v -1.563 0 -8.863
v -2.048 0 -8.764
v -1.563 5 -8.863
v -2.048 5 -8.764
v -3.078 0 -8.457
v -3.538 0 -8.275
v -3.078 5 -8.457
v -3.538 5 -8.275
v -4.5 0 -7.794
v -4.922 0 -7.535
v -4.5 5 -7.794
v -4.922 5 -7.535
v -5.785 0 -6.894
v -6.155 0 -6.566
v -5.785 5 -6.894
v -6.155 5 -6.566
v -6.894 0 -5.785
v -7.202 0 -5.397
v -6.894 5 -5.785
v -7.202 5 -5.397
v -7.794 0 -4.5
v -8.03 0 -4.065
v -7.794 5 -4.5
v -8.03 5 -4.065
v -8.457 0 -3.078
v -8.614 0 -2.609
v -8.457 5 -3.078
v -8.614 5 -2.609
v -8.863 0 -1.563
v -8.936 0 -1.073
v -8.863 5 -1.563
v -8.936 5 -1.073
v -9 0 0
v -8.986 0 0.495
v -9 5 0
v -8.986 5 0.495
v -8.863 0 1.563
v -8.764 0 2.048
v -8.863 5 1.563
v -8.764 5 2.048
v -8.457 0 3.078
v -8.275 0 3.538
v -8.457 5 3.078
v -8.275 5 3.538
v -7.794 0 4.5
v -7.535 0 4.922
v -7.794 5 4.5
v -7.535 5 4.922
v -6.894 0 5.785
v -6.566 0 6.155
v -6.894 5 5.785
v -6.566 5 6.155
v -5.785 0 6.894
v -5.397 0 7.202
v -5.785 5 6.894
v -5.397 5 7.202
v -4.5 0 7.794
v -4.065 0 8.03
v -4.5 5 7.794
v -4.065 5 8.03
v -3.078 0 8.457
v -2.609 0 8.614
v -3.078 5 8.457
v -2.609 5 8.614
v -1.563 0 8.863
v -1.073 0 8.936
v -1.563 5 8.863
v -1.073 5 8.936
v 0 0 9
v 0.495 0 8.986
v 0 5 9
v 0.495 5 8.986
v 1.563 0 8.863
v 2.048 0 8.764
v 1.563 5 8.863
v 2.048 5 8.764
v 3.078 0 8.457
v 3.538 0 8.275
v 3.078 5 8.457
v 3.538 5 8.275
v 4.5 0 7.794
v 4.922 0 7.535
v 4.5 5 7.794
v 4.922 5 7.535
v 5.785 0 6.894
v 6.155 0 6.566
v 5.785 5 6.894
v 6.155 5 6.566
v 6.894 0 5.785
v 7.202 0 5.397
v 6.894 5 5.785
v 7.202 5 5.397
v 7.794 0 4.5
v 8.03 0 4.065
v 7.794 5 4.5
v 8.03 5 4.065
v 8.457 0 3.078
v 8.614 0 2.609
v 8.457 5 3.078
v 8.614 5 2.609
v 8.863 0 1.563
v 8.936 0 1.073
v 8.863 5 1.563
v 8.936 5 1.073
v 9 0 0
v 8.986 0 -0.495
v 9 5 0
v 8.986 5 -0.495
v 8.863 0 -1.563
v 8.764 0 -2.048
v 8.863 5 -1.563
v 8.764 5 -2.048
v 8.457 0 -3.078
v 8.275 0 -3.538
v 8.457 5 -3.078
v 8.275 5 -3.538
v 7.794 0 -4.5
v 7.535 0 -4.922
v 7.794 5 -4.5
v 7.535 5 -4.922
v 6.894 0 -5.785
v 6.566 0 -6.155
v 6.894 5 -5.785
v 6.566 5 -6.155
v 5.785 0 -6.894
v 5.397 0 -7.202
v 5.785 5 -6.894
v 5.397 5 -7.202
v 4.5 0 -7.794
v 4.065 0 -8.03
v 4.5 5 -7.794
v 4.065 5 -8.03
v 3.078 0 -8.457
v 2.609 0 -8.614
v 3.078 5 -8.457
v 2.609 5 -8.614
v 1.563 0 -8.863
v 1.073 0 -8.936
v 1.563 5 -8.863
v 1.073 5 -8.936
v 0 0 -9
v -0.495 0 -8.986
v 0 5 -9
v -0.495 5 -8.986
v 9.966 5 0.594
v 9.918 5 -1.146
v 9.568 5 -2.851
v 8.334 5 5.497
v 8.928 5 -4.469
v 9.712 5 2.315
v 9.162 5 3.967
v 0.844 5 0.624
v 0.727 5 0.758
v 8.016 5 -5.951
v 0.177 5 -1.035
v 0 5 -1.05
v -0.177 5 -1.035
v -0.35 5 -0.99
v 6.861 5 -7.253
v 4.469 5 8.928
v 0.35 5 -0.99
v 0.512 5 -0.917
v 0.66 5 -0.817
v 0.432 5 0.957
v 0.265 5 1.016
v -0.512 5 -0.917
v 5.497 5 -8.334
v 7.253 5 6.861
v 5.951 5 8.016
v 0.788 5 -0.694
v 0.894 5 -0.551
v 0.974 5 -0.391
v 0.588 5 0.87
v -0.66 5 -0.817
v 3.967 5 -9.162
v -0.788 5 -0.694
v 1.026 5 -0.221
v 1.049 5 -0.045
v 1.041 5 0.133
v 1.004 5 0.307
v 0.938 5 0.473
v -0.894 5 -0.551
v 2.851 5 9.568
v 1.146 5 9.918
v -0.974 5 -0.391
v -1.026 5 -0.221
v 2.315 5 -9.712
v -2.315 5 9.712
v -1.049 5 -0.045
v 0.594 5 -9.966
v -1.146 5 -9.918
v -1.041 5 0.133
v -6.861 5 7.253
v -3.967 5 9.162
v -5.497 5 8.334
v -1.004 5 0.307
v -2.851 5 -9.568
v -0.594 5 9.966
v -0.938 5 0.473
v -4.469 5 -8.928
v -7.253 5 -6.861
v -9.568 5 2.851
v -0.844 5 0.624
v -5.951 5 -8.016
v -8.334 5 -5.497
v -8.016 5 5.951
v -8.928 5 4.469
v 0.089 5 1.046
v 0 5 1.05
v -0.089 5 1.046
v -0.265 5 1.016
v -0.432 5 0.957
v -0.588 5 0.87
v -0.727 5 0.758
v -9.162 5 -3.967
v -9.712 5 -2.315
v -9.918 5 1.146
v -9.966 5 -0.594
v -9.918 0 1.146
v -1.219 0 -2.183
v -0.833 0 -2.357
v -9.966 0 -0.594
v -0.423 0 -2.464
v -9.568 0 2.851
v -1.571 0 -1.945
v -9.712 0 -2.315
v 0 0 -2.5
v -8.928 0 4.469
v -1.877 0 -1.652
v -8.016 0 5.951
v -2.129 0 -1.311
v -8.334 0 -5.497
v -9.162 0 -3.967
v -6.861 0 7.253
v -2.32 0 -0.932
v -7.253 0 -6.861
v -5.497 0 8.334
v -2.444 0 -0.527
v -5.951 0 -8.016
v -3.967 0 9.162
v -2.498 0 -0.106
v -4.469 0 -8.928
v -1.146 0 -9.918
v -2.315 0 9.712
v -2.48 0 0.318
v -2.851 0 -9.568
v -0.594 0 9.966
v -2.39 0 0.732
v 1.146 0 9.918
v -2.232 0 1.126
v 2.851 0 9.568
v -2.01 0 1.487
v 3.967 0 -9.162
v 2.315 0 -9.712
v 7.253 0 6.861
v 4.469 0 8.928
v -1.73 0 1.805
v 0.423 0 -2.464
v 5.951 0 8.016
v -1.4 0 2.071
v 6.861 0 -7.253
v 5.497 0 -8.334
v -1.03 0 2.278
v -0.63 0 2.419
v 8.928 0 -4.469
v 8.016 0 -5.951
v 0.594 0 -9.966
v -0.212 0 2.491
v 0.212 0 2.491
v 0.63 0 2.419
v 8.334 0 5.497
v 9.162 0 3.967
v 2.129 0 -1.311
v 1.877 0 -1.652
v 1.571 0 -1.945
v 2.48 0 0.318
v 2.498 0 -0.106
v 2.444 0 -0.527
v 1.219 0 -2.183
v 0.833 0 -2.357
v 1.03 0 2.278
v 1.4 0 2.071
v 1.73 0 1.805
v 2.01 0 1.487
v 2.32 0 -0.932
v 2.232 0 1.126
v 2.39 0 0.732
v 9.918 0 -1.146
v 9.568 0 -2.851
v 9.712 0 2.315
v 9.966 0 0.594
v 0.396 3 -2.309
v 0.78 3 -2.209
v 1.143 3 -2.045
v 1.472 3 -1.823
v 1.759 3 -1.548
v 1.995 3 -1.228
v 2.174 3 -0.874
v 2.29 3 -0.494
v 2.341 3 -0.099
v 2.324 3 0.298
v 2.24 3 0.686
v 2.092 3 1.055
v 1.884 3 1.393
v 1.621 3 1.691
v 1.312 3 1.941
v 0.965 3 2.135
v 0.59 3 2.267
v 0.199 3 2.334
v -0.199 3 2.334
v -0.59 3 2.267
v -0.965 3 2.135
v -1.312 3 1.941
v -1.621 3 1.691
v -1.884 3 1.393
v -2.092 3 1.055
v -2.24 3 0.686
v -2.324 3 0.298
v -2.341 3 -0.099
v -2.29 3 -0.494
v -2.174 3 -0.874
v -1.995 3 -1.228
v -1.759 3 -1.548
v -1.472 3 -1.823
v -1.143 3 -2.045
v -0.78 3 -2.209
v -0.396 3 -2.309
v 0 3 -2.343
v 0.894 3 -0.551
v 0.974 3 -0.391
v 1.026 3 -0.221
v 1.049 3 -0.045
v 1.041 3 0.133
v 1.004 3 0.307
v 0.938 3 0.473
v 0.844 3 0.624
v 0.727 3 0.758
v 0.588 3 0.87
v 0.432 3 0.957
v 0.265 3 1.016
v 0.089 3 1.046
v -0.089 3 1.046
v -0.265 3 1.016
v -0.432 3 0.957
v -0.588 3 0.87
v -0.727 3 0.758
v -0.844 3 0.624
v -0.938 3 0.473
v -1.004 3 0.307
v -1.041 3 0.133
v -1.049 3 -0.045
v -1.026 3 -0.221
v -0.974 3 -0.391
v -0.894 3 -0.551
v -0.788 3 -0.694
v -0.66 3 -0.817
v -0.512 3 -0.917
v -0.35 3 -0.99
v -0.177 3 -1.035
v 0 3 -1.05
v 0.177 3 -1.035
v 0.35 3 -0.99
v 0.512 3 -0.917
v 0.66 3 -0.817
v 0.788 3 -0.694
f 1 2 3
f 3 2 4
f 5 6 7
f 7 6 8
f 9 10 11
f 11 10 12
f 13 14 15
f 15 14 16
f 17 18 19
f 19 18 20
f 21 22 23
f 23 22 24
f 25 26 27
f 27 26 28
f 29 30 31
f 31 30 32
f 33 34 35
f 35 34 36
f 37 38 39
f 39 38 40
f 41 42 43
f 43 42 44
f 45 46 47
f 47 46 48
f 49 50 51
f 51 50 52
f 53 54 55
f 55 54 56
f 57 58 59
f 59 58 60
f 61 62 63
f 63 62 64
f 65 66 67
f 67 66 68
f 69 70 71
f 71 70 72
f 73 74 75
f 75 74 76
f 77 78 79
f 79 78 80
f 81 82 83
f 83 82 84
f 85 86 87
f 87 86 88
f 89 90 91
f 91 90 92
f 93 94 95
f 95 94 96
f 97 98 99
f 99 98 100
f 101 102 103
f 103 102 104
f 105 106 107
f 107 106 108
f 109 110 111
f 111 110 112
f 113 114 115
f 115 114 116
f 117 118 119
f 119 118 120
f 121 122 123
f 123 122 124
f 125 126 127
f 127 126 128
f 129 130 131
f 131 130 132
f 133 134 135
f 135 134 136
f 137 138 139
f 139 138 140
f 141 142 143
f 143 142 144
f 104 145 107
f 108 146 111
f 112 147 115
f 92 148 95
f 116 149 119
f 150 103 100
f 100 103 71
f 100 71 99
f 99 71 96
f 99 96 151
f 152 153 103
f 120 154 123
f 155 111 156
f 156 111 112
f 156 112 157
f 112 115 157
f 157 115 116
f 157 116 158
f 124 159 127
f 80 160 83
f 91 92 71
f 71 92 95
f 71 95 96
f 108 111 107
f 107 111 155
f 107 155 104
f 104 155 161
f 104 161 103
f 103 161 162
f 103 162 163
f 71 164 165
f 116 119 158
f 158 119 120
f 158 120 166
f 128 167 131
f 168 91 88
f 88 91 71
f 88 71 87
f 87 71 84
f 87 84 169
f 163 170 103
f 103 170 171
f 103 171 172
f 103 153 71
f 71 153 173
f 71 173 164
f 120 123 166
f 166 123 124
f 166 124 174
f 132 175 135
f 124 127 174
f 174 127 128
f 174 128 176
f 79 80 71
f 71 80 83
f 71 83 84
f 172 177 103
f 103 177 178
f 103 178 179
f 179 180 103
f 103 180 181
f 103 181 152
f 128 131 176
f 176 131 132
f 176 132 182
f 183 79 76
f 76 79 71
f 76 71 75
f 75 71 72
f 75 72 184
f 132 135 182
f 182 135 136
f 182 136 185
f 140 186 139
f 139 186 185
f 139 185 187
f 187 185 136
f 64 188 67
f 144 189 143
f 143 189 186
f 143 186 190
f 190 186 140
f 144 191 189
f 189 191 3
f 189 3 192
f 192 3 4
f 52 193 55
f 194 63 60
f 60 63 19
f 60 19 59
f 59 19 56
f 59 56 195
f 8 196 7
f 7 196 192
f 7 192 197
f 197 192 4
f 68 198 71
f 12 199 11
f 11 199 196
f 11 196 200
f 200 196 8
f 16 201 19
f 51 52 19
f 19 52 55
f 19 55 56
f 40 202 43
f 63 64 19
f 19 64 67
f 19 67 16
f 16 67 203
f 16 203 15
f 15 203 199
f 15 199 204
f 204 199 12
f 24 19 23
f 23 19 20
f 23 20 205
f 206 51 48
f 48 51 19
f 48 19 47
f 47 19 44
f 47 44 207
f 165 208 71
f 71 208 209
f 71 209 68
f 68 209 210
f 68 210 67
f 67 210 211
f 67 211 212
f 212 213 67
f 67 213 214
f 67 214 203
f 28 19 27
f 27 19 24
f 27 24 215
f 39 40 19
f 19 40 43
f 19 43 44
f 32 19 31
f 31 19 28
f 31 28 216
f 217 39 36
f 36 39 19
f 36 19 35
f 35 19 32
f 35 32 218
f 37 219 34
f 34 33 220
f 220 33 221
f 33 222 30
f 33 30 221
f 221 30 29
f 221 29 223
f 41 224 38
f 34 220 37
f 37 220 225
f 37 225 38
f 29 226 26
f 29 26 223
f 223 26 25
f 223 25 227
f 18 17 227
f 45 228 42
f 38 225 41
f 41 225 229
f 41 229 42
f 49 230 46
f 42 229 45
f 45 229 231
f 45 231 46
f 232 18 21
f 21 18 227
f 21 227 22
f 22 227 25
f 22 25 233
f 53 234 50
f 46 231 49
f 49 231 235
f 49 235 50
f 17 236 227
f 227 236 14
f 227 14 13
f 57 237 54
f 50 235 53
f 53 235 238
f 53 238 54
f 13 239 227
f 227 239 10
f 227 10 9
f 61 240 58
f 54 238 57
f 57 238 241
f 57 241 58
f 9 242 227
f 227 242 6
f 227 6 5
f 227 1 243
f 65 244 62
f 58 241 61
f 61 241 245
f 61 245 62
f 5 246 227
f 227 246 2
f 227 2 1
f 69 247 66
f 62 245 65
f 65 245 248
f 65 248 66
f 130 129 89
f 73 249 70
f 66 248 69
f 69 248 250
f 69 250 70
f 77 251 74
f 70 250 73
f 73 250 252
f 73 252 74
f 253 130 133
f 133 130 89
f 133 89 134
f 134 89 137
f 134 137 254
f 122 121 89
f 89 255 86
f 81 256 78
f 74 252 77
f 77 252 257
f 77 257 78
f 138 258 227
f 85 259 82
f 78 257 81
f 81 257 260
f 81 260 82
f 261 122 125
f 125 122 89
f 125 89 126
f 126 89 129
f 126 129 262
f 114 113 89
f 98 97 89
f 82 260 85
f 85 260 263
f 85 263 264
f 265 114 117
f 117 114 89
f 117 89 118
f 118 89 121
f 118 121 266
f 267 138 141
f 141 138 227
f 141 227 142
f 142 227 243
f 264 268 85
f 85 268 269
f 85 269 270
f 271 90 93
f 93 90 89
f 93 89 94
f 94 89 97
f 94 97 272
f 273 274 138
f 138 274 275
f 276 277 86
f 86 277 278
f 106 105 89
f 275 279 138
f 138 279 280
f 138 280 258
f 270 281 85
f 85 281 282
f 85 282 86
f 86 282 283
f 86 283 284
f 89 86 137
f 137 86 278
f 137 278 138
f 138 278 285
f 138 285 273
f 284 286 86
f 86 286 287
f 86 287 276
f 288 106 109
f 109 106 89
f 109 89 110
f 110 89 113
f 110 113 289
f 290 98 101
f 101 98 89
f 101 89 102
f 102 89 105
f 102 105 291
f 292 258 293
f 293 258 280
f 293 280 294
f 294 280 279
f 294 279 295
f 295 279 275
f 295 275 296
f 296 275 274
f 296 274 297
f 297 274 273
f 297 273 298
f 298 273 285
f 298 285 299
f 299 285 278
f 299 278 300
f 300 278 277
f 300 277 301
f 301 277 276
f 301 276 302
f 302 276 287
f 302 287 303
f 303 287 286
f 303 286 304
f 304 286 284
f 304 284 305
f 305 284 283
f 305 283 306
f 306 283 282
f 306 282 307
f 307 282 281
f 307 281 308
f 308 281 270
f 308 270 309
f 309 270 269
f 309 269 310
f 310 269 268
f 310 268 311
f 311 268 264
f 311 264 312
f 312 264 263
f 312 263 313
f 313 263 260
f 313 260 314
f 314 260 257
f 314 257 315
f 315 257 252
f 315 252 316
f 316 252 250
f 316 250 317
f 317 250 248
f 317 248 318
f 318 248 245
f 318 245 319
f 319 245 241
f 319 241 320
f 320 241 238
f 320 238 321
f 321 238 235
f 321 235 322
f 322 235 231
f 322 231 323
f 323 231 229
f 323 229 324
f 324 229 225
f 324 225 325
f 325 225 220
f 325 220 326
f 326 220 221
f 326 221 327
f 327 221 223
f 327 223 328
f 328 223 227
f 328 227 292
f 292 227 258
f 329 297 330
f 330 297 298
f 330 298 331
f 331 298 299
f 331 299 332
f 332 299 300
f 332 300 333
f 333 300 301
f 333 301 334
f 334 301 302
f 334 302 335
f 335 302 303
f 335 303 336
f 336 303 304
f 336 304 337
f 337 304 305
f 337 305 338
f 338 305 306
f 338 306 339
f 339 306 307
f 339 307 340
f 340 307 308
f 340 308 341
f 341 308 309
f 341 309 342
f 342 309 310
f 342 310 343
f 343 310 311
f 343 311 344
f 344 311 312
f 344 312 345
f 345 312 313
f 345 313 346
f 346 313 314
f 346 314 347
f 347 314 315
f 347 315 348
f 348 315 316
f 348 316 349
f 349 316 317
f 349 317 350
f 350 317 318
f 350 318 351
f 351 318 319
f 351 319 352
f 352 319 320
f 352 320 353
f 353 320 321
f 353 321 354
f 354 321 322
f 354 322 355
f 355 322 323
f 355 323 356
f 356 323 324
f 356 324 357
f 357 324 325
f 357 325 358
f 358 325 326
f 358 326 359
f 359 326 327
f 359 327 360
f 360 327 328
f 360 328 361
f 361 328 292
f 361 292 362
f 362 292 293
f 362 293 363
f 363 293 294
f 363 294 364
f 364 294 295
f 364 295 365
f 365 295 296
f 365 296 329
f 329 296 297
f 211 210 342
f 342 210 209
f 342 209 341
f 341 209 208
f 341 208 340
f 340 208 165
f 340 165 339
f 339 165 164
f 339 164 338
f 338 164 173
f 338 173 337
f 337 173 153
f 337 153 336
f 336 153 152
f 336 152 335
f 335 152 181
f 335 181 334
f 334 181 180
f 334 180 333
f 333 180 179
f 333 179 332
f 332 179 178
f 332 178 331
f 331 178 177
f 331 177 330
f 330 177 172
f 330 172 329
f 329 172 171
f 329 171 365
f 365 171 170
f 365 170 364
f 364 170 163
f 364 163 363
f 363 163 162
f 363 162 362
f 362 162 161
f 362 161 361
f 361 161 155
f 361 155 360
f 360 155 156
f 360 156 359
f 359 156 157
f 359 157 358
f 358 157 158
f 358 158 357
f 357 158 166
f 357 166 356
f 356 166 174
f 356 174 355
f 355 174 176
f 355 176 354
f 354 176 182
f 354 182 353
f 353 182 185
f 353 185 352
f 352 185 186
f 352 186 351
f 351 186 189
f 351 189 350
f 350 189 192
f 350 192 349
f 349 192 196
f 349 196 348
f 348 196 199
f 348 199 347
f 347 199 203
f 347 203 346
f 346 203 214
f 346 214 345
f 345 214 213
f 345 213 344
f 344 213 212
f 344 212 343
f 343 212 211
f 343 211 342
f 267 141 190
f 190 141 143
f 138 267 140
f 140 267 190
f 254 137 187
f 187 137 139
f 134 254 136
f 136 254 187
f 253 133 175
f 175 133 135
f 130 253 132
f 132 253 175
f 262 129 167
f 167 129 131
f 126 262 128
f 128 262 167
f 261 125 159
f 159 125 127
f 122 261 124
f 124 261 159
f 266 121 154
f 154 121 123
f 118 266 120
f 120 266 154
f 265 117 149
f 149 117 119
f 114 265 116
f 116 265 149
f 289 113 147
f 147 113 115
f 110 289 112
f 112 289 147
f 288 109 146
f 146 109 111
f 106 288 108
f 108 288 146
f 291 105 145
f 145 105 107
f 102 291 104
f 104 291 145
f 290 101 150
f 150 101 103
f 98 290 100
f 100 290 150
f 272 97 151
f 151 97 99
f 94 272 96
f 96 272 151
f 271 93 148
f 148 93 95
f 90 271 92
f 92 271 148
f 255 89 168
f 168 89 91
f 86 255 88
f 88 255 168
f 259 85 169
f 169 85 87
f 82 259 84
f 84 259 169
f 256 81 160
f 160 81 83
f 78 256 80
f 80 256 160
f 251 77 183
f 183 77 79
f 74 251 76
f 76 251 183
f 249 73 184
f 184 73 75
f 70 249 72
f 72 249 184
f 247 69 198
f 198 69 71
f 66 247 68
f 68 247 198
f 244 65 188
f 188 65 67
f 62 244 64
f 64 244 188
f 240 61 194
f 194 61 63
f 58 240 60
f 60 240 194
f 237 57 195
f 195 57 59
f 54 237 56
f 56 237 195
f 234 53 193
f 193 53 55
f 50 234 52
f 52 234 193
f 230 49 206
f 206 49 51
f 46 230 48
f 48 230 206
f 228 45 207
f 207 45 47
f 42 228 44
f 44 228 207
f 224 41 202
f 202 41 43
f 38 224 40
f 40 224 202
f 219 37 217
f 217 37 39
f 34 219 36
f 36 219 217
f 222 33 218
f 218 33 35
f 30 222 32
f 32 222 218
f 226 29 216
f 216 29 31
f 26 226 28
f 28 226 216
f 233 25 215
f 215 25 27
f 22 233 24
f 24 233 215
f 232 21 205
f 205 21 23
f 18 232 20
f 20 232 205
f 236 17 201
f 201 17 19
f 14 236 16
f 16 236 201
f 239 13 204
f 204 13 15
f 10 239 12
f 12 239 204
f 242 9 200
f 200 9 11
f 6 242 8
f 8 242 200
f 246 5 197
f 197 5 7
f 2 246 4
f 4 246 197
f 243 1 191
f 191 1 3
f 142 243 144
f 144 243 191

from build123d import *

# Parameters (mm, degrees)
SKETCH1_R           = 9
BOSS_EXTRUDE1_DEPTH = 5
SKETCH2_R           = 2.5
CUT_EXTRUDE1_DEPTH  = 3
CUT_EXTRUDE1_DRAFT  = -3
SKETCH3_R           = 1.05
CUT_EXTRUDE2_DEPTH  = 3
BOSS_EXTRUDE2_DEPTH = 5


with BuildPart() as part:
    # Sketch1 → Boss-Extrude1 (new body)
    with BuildSketch(Plane(origin=(0, 0, 0), x_dir=(1, 0, 0), z_dir=(0, 1, 0))):
        with Locations(Location((0, 0, 0), (0, 0, 270))):
            Circle(SKETCH1_R)
    extrude(amount=BOSS_EXTRUDE1_DEPTH)


with BuildPart() as cut_extrude1_tool:
    # Sketch2 → Cut-Extrude1 (with draft: the straight prism first)
    with BuildSketch(Plane.XZ):
        Circle(SKETCH2_R)
    extrude(amount=-CUT_EXTRUDE1_DEPTH)
    # Cut-Extrude1: the draft: its side faces are tilted about the plane it starts from
    cut_extrude1_sides = [cut_extrude1_tool.faces().sort_by_distance(p)[0] for p in [
        (-2.5, 1.5, 0),
    ]]
    draft(cut_extrude1_sides, Plane.XZ, CUT_EXTRUDE1_DRAFT)


with BuildPart() as part_1:
    add(part.part)

    # Cut-Extrude1: cut by cut_extrude1_tool
    add(cut_extrude1_tool.part, mode=Mode.SUBTRACT)

    # Sketch3 → Cut-Extrude2 (cut)
    with BuildSketch(Plane.XZ.offset(-3)):
        with Locations(Location((0, 0, 0), (0, 0, 270))):
            Circle(SKETCH3_R)
    extrude(amount=-CUT_EXTRUDE2_DEPTH, mode=Mode.SUBTRACT)

    # Sketch4 → Boss-Extrude2 (add)
    with BuildSketch(Plane(origin=(0, 5, 0), x_dir=(1, 0, 0), z_dir=(0, 1, 0))):
        Polygon((0, 9), (0.59385284, 9.966251069), (1.073329801, 8.935768749), align=None)
        Polygon((1.562833599, 8.863269777), (2.315452217, 9.711719857), (2.608703469, 8.613632579), align=None)
        Polygon((3.07818129, 8.457233587), (3.966697751, 9.162102953), (4.064813002, 8.029775542), align=None)
        Polygon((4.5, 7.794228634), (5.49741718, 8.334100186), (5.397415249, 7.201937839), align=None)
        Polygon((5.785088487, 6.894399988), (6.86110037, 7.252870002), (6.566019765, 6.155272898), align=None)
        Polygon((6.894399988, 5.785088487), (8.016312498, 5.951265034), (7.535119092, 4.921583105), align=None)
        Polygon((7.794228634, 4.5), (8.927953026, 4.468833889), (8.27526764, 3.5383535), align=None)
        Polygon((8.457233587, 3.07818129), (9.56832222, 2.850619487), (8.763976367, 2.047612815), align=None)
        Polygon((8.863269777, 1.562833599), (9.917962784, 1.145790455), (8.986396107, 0.49465645), align=None)
        Polygon((9, 0), (9.966251069, -0.59385284), (8.935768749, -1.073329801), align=None)
        Polygon((8.863269777, -1.562833599), (9.711719857, -2.315452217), (8.613632579, -2.608703469), align=None)
        Polygon((8.457233587, -3.07818129), (9.162102953, -3.966697751), (8.029775542, -4.064813002), align=None)
        Polygon((7.794228634, -4.5), (8.334100186, -5.49741718), (7.201937839, -5.397415249), align=None)
        Polygon((6.894399988, -5.785088487), (7.252870002, -6.86110037), (6.155272898, -6.566019765), align=None)
        Polygon((5.785088487, -6.894399988), (5.951265034, -8.016312498), (4.921583105, -7.535119092), align=None)
        Polygon((4.5, -7.794228634), (4.468833889, -8.927953026), (3.5383535, -8.27526764), align=None)
        Polygon((3.07818129, -8.457233587), (2.850619487, -9.56832222), (2.047612815, -8.763976367), align=None)
        Polygon((1.562833599, -8.863269777), (1.145790455, -9.917962784), (0.49465645, -8.986396107), align=None)
        Polygon((0, -9), (-0.59385284, -9.966251069), (-1.073329801, -8.935768749), align=None)
        Polygon((-1.562833599, -8.863269777), (-2.315452217, -9.711719857), (-2.608703469, -8.613632579), align=None)
        Polygon((-3.07818129, -8.457233587), (-3.966697751, -9.162102953), (-4.064813002, -8.029775542), align=None)
        Polygon((-4.5, -7.794228634), (-5.49741718, -8.334100186), (-5.397415249, -7.201937839), align=None)
        Polygon((-5.785088487, -6.894399988), (-6.86110037, -7.252870002), (-6.566019765, -6.155272898), align=None)
        Polygon((-6.894399988, -5.785088487), (-8.016312498, -5.951265034), (-7.535119092, -4.921583105), align=None)
        Polygon((-7.794228634, -4.5), (-8.927953026, -4.468833889), (-8.27526764, -3.5383535), align=None)
        Polygon((-8.457233587, -3.07818129), (-9.56832222, -2.850619487), (-8.763976367, -2.047612815), align=None)
        Polygon((-8.863269777, -1.562833599), (-9.917962784, -1.145790455), (-8.986396107, -0.49465645), align=None)
        Polygon((-9, 0), (-9.966251069, 0.59385284), (-8.935768749, 1.073329801), align=None)
        Polygon((-8.863269777, 1.562833599), (-9.711719857, 2.315452217), (-8.613632579, 2.608703469), align=None)
        Polygon((-8.457233587, 3.07818129), (-9.162102953, 3.966697751), (-8.029775542, 4.064813002), align=None)
        Polygon((-7.794228634, 4.5), (-8.334100186, 5.49741718), (-7.201937839, 5.397415249), align=None)
        Polygon((-6.894399988, 5.785088487), (-7.252870002, 6.86110037), (-6.155272898, 6.566019765), align=None)
        Polygon((-5.785088487, 6.894399988), (-5.951265034, 8.016312498), (-4.921583105, 7.535119092), align=None)
        Polygon((-4.5, 7.794228634), (-4.468833889, 8.927953026), (-3.5383535, 8.27526764), align=None)
        Polygon((-3.07818129, 8.457233587), (-2.850619487, 9.56832222), (-2.047612815, 8.763976367), align=None)
        Polygon((-1.562833599, 8.863269777), (-1.145790455, 9.917962784), (-0.49465645, 8.986396107), align=None)
    extrude(amount=-BOSS_EXTRUDE2_DEPTH)


solid = part_1.part
